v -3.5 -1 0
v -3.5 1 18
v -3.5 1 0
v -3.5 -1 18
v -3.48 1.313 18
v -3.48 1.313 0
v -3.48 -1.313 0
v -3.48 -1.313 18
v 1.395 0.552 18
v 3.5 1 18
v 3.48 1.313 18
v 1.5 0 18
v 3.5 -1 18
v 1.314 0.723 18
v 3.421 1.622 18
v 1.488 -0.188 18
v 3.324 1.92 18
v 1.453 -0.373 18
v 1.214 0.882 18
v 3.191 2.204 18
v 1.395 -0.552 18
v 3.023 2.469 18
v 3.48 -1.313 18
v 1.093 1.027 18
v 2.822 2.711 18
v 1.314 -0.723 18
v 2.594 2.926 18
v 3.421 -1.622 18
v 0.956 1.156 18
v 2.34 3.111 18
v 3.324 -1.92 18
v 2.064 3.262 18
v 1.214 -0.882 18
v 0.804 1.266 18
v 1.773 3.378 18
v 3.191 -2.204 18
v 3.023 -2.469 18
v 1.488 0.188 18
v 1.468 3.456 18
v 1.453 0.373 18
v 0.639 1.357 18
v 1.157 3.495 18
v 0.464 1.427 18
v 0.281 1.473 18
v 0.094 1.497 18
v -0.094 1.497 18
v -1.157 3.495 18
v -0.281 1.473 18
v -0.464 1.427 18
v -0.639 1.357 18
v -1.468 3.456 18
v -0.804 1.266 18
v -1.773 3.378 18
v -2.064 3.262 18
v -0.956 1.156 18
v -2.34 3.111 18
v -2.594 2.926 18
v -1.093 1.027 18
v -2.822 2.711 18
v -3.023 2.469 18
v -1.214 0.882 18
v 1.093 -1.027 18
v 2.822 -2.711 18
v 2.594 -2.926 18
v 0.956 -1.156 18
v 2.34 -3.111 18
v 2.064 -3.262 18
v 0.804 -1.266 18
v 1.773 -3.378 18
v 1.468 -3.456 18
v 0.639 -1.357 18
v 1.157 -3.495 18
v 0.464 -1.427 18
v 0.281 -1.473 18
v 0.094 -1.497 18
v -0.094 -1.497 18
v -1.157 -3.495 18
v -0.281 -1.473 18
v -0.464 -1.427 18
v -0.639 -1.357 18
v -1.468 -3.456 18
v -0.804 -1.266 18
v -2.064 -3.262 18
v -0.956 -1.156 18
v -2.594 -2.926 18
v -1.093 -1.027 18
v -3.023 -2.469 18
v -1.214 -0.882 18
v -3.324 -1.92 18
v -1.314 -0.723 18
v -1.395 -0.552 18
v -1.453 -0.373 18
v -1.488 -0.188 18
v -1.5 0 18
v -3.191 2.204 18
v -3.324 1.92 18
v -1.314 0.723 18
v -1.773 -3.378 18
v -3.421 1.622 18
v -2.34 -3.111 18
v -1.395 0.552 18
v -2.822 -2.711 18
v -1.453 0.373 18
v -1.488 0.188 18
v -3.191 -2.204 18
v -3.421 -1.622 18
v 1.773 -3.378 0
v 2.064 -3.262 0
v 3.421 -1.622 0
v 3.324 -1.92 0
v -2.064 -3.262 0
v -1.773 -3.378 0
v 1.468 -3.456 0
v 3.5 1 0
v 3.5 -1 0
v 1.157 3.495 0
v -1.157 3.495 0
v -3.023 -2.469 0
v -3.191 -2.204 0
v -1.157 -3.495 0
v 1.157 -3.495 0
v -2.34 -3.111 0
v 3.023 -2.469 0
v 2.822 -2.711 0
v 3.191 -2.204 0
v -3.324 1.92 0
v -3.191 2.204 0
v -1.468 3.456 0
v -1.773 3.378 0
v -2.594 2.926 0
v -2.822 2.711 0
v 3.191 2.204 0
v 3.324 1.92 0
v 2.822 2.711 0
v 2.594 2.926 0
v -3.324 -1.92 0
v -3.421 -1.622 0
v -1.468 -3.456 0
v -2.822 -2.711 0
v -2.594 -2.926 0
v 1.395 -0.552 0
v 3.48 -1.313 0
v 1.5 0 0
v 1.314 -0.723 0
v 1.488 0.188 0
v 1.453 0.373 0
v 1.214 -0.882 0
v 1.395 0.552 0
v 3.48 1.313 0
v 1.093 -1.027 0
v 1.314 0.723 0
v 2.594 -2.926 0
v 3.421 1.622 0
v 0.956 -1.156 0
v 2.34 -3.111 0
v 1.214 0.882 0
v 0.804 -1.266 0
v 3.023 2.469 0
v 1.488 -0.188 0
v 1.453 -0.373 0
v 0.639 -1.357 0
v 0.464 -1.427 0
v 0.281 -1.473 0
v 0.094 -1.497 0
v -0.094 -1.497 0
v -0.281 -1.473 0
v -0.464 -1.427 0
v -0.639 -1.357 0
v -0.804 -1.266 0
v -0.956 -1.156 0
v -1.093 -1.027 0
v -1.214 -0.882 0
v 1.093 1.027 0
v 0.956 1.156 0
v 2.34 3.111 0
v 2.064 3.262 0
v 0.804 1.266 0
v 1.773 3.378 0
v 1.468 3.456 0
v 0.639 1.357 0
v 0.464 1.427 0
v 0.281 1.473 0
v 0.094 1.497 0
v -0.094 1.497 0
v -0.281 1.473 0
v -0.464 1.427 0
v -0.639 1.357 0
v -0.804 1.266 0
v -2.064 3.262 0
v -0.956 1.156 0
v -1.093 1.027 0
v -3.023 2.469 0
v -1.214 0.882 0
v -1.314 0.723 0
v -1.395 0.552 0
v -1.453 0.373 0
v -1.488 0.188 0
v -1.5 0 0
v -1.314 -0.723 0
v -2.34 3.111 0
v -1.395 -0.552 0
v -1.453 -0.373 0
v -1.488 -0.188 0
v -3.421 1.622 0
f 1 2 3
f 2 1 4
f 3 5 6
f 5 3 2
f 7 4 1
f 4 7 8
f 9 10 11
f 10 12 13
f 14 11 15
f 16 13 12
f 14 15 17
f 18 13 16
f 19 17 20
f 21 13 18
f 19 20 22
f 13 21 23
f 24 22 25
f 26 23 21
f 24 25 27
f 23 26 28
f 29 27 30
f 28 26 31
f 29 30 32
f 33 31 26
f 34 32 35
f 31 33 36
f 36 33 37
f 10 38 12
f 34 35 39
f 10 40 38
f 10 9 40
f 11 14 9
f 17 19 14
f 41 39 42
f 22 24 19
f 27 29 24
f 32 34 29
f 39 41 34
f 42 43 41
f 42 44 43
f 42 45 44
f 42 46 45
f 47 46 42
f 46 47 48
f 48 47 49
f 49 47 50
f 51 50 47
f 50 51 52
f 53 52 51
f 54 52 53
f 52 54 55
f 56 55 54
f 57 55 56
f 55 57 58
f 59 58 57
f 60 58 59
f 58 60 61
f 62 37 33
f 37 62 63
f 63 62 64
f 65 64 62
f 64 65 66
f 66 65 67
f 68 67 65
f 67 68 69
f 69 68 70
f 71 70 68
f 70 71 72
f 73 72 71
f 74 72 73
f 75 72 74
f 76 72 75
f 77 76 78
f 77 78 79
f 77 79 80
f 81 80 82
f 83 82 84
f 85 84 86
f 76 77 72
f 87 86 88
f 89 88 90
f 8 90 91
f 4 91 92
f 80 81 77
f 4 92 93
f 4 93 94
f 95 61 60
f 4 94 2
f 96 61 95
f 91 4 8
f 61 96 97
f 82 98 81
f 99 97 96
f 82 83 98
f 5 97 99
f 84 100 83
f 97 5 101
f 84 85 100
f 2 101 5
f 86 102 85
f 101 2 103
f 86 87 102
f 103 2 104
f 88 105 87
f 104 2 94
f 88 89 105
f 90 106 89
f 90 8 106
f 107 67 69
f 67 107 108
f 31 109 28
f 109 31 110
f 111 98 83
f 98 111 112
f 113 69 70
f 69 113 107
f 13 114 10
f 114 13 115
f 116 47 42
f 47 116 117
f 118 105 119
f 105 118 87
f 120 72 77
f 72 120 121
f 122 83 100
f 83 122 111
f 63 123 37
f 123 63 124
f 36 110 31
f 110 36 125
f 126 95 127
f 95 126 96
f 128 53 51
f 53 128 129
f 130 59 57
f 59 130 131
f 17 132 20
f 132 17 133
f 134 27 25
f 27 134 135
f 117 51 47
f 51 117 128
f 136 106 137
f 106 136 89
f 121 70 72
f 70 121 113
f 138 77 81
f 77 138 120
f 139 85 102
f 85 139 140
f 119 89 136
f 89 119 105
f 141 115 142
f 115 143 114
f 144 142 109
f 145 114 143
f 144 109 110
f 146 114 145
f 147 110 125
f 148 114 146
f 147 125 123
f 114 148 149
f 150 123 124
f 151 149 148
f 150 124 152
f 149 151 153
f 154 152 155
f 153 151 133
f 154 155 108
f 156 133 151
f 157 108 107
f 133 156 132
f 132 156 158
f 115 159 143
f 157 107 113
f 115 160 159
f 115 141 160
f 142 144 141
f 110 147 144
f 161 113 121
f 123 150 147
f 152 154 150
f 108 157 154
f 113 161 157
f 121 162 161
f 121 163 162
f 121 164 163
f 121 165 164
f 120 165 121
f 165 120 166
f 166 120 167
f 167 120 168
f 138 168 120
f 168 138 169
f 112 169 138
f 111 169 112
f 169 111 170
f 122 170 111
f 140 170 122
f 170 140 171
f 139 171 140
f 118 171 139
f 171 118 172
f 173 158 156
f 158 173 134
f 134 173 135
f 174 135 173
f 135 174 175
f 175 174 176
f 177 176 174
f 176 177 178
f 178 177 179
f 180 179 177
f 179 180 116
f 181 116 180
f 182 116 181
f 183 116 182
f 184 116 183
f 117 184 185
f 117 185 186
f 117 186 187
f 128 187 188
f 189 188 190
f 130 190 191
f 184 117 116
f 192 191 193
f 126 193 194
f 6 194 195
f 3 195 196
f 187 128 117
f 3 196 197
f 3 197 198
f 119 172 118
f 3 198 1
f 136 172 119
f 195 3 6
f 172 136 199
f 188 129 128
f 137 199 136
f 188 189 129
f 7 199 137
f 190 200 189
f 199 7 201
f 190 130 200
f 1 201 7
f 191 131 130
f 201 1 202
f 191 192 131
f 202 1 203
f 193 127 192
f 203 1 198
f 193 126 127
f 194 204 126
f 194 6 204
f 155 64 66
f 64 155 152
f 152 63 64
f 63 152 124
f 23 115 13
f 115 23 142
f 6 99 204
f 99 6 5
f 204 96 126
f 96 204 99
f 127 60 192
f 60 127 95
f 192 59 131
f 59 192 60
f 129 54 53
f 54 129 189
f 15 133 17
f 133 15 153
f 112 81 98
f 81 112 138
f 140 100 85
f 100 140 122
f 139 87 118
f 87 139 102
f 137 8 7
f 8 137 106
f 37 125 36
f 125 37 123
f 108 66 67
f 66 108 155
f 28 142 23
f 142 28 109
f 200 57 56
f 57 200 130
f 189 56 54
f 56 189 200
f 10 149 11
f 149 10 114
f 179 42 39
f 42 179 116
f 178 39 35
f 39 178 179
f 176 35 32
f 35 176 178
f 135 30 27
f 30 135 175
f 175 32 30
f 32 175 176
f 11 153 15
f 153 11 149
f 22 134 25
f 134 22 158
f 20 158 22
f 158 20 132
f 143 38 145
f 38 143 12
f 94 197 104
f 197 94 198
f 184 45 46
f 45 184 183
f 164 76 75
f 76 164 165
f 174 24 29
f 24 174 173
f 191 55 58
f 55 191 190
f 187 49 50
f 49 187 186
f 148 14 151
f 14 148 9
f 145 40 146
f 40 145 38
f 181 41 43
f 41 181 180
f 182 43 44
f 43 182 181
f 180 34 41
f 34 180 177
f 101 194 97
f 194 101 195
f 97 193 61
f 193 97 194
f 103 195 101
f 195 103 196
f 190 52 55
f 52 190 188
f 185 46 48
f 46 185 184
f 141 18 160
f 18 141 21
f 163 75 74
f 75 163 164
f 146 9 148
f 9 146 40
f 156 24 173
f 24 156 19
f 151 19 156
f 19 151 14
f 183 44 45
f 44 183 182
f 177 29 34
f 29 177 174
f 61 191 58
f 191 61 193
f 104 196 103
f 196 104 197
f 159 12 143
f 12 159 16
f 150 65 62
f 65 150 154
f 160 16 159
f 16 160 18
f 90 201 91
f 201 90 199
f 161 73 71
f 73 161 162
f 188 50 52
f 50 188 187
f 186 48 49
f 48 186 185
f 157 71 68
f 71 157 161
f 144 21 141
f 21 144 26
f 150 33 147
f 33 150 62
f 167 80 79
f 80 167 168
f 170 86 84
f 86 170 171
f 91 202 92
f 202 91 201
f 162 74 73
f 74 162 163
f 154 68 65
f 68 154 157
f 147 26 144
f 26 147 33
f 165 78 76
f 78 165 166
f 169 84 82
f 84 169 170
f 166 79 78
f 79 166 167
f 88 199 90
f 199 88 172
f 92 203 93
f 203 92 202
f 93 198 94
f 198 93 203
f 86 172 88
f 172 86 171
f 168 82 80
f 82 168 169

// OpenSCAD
$fn = 50;


difference() {
	union() {
		translate(v = [0, 0, 0]) {
			rotate(a = [0, 0, 0]) {
				hull() {
					translate(v = [-1.0000000000, 1.0000000000, 0]) {
						rotate(a = [0, 0, 0]) {
							translate(v = [0, 0, 0]) {
								rotate(a = [0, 0, 0]) {
									cylinder(h = 18, r = 2.5000000000);
								}
							}
						}
					}
					translate(v = [1.0000000000, 1.0000000000, 0]) {
						rotate(a = [0, 0, 0]) {
							translate(v = [0, 0, 0]) {
								rotate(a = [0, 0, 0]) {
									cylinder(h = 18, r = 2.5000000000);
								}
							}
						}
					}
					translate(v = [-1.0000000000, -1.0000000000, 0]) {
						rotate(a = [0, 0, 0]) {
							translate(v = [0, 0, 0]) {
								rotate(a = [0, 0, 0]) {
									cylinder(h = 18, r = 2.5000000000);
								}
							}
						}
					}
					translate(v = [1.0000000000, -1.0000000000, 0]) {
						rotate(a = [0, 0, 0]) {
							translate(v = [0, 0, 0]) {
								rotate(a = [0, 0, 0]) {
									cylinder(h = 18, r = 2.5000000000);
								}
							}
						}
					}
				}
			}
		}
	}
	union() {
		translate(v = [0.0000000000, 0.0000000000, 0]) {
			rotate(a = [0, 0, 0]) {
				translate(v = [0, 0, -50]) {
					rotate(a = [0, 0, 0]) {
						cylinder(h = 100, r = 1.5000000000);
					}
				}
			}
		}
	}
}
